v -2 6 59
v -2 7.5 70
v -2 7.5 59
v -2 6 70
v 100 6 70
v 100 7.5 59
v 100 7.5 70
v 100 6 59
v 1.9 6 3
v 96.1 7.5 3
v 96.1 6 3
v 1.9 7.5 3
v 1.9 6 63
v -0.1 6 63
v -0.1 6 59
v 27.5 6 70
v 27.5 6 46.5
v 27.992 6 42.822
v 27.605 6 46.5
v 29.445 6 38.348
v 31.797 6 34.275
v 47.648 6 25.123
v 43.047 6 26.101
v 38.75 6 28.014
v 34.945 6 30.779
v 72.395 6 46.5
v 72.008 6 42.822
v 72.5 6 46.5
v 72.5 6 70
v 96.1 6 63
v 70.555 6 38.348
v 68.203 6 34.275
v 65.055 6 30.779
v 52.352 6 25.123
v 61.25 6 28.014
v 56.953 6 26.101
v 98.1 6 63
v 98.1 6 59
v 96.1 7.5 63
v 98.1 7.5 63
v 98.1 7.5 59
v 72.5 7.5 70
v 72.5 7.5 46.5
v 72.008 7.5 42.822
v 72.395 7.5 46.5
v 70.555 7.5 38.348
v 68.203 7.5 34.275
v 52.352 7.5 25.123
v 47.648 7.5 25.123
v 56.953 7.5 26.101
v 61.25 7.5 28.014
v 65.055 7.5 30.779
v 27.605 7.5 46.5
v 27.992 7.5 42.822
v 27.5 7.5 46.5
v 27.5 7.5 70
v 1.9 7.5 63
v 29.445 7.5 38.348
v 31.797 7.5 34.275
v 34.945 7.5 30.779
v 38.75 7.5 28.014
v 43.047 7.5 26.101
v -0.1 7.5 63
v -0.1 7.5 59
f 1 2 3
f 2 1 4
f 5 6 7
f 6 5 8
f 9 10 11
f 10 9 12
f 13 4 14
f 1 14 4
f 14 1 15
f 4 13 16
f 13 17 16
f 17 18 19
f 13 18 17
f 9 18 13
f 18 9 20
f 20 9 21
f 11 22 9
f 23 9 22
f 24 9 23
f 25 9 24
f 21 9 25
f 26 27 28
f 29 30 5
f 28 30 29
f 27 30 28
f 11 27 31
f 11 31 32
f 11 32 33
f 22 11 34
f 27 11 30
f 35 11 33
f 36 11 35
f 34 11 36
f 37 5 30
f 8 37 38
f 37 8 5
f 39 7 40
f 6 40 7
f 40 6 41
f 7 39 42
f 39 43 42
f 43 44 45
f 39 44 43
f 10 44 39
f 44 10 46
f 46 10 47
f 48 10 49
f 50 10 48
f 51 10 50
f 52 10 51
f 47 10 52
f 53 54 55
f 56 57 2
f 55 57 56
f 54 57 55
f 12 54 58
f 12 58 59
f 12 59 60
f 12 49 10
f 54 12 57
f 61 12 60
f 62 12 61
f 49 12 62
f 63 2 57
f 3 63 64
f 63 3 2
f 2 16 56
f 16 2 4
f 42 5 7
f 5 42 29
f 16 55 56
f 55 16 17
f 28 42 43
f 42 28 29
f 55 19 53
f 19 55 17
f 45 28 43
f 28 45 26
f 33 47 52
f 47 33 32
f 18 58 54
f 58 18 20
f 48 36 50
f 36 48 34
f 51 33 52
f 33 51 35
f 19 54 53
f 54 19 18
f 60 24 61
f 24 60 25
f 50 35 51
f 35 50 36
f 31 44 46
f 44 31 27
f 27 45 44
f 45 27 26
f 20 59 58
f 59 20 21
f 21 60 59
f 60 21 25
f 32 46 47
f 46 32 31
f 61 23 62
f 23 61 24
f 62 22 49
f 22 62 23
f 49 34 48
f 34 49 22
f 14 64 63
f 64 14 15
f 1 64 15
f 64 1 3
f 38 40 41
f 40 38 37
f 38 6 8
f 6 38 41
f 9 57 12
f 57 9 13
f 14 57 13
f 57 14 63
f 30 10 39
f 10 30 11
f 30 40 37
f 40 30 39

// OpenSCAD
/* [Box Parameters] */


innerWidth = 95;
innerDepth = 145;
innerHeight = 80;

wallThick = 1.5;
totalWidth = innerWidth + (wallThick*2);
cutoutHeight = 30;
cutoutWidth = 45;

cutoutOffsetX = ((wallThick * 2) + innerWidth) / 2 - (cutoutWidth / 2);
cutoutOffsetZ = wallThick + innerHeight - cutoutHeight;
/*
difference() {
    cube([innerWidth + (wallThick * 2),innerDepth + (wallThick * 2),innerHeight + wallThick]);
    translate([wallThick,wallThick,wallThick]) cube([innerWidth,innerDepth,innerHeight + 3]);
    translate([cutoutOffsetX,-1,cutoutOffsetZ]) cube([cutoutWidth,wallThick * 4 + innerDepth,cutoutHeight + 3]);

    translate([cutoutOffsetX,0,innerHeight+wallThick]) rotate([270,90,0])fillet(10,5);

    translate([cutoutOffsetX,innerDepth + wallThick,innerHeight+wallThick]) rotate([270,90,0])fillet(10,5);

    translate([innerWidth+wallThick*2-cutoutOffsetX,0,innerHeight+wallThick]) rotate([90,90,0])fillet(10,5);

    translate([innerWidth+wallThick*2-cutoutOffsetX,innerDepth + wallThick,innerHeight+wallThick]) rotate([90,90,0])fillet(10,5);
    for(i = [12:15:innerDepth-10]) {
        ident(i);
    } 

    color("blue") translate([(innerWidth+(wallThick * 2))/2,150,cutoutOffsetZ])  rotate ([90, 0,0]) cylinder(h=155, r=22.5);
}
  */

   //color("blue") translate([-5,2,60]) cube([105,60,120]);  
//    cube([innerWidth + (wallThick * 2),innerDepth + (wallThick * 2),innerHeight + wallThick]);
//anslate([wallThick,wallThick,wallThick]) cube([innerWidth,innerDepth,innerHeight + 3]);
 difference() {
    translate([-2,6   , 3])color("red") cube([innerWidth + (wallThick * 2)+4,wallThick,innerHeight - wallThick]);


    color("green") rotate ([90, 0,0]) translate([-5,70,-20]) cube([120, 20, 38]);    
    color("blue") translate([cutoutOffsetX+1,-1.5,cutoutOffsetZ-5]) cube([cutoutWidth,wallThick * 4 + innerDepth,cutoutHeight + 3]);
    color("blue") translate([(innerWidth+(wallThick * 2))/2+1,8,cutoutOffsetZ-4])  rotate ([90, 0,0]) cylinder(h=155, r=22.5);
    color("pink")  rotate ([90, 0,0]) translate([-2.1,0,-20]) cube([2,  59, 38]);
    color("pink")  rotate ([90, 0,0]) translate([98.1,0,-20]) cube([2,  59, 38]);
    color("green") rotate ([90, 0,0]) translate([-0.1,0,-20]) cube([2, 63, 38]);
    color("green") rotate ([90, 0,0]) translate([96.1,0,-20]) cube([2, 63, 38]);

}

/*
font1 = "Liberation Sans"; // here you can select other font type
content = "Bosses";
translate ([totalWidth/2,-1,30]) {
    rotate ([90, 0,0]) {
        //linear_extrude(height = 1.5) {
            text(content, font = font1, size = 20, direction = "ltr", spacing = 1, halign = "center" );
        //}
    }
}
*/
 
    //translate([innerWidth+(wallThick*2),20,innerHeight-28]) rotate([0,0,90]) scale([4,2,20]) cube(wallThick);
    //translate([wallThick+1,20,innerHeight-28]) rotate([0,0,90]) scale([4,2,20]) cube(wallThick);
   // translate([wallThick,20,innerHeight]) rotate([0,0,90]) scale([0.5,1,2]) cube(wallThick);

module fillet(r, h) {
    translate([r / 2, r / 2, 0])

        difference() {
            cube([r + 0.01, r + 0.01, h], center = true);

            translate([r/2, r/2, 0])
                cylinder(r = r, h = h + 1, center = true);

        }
}

module ident (y) {
    translate([3,y,62]) rotate([0,0,90]) cube([2.5, 6.5, 20]);
    translate([100,y,62]) rotate([0,0,90]) cube([2.5, 6.5, 20]);

    
}
